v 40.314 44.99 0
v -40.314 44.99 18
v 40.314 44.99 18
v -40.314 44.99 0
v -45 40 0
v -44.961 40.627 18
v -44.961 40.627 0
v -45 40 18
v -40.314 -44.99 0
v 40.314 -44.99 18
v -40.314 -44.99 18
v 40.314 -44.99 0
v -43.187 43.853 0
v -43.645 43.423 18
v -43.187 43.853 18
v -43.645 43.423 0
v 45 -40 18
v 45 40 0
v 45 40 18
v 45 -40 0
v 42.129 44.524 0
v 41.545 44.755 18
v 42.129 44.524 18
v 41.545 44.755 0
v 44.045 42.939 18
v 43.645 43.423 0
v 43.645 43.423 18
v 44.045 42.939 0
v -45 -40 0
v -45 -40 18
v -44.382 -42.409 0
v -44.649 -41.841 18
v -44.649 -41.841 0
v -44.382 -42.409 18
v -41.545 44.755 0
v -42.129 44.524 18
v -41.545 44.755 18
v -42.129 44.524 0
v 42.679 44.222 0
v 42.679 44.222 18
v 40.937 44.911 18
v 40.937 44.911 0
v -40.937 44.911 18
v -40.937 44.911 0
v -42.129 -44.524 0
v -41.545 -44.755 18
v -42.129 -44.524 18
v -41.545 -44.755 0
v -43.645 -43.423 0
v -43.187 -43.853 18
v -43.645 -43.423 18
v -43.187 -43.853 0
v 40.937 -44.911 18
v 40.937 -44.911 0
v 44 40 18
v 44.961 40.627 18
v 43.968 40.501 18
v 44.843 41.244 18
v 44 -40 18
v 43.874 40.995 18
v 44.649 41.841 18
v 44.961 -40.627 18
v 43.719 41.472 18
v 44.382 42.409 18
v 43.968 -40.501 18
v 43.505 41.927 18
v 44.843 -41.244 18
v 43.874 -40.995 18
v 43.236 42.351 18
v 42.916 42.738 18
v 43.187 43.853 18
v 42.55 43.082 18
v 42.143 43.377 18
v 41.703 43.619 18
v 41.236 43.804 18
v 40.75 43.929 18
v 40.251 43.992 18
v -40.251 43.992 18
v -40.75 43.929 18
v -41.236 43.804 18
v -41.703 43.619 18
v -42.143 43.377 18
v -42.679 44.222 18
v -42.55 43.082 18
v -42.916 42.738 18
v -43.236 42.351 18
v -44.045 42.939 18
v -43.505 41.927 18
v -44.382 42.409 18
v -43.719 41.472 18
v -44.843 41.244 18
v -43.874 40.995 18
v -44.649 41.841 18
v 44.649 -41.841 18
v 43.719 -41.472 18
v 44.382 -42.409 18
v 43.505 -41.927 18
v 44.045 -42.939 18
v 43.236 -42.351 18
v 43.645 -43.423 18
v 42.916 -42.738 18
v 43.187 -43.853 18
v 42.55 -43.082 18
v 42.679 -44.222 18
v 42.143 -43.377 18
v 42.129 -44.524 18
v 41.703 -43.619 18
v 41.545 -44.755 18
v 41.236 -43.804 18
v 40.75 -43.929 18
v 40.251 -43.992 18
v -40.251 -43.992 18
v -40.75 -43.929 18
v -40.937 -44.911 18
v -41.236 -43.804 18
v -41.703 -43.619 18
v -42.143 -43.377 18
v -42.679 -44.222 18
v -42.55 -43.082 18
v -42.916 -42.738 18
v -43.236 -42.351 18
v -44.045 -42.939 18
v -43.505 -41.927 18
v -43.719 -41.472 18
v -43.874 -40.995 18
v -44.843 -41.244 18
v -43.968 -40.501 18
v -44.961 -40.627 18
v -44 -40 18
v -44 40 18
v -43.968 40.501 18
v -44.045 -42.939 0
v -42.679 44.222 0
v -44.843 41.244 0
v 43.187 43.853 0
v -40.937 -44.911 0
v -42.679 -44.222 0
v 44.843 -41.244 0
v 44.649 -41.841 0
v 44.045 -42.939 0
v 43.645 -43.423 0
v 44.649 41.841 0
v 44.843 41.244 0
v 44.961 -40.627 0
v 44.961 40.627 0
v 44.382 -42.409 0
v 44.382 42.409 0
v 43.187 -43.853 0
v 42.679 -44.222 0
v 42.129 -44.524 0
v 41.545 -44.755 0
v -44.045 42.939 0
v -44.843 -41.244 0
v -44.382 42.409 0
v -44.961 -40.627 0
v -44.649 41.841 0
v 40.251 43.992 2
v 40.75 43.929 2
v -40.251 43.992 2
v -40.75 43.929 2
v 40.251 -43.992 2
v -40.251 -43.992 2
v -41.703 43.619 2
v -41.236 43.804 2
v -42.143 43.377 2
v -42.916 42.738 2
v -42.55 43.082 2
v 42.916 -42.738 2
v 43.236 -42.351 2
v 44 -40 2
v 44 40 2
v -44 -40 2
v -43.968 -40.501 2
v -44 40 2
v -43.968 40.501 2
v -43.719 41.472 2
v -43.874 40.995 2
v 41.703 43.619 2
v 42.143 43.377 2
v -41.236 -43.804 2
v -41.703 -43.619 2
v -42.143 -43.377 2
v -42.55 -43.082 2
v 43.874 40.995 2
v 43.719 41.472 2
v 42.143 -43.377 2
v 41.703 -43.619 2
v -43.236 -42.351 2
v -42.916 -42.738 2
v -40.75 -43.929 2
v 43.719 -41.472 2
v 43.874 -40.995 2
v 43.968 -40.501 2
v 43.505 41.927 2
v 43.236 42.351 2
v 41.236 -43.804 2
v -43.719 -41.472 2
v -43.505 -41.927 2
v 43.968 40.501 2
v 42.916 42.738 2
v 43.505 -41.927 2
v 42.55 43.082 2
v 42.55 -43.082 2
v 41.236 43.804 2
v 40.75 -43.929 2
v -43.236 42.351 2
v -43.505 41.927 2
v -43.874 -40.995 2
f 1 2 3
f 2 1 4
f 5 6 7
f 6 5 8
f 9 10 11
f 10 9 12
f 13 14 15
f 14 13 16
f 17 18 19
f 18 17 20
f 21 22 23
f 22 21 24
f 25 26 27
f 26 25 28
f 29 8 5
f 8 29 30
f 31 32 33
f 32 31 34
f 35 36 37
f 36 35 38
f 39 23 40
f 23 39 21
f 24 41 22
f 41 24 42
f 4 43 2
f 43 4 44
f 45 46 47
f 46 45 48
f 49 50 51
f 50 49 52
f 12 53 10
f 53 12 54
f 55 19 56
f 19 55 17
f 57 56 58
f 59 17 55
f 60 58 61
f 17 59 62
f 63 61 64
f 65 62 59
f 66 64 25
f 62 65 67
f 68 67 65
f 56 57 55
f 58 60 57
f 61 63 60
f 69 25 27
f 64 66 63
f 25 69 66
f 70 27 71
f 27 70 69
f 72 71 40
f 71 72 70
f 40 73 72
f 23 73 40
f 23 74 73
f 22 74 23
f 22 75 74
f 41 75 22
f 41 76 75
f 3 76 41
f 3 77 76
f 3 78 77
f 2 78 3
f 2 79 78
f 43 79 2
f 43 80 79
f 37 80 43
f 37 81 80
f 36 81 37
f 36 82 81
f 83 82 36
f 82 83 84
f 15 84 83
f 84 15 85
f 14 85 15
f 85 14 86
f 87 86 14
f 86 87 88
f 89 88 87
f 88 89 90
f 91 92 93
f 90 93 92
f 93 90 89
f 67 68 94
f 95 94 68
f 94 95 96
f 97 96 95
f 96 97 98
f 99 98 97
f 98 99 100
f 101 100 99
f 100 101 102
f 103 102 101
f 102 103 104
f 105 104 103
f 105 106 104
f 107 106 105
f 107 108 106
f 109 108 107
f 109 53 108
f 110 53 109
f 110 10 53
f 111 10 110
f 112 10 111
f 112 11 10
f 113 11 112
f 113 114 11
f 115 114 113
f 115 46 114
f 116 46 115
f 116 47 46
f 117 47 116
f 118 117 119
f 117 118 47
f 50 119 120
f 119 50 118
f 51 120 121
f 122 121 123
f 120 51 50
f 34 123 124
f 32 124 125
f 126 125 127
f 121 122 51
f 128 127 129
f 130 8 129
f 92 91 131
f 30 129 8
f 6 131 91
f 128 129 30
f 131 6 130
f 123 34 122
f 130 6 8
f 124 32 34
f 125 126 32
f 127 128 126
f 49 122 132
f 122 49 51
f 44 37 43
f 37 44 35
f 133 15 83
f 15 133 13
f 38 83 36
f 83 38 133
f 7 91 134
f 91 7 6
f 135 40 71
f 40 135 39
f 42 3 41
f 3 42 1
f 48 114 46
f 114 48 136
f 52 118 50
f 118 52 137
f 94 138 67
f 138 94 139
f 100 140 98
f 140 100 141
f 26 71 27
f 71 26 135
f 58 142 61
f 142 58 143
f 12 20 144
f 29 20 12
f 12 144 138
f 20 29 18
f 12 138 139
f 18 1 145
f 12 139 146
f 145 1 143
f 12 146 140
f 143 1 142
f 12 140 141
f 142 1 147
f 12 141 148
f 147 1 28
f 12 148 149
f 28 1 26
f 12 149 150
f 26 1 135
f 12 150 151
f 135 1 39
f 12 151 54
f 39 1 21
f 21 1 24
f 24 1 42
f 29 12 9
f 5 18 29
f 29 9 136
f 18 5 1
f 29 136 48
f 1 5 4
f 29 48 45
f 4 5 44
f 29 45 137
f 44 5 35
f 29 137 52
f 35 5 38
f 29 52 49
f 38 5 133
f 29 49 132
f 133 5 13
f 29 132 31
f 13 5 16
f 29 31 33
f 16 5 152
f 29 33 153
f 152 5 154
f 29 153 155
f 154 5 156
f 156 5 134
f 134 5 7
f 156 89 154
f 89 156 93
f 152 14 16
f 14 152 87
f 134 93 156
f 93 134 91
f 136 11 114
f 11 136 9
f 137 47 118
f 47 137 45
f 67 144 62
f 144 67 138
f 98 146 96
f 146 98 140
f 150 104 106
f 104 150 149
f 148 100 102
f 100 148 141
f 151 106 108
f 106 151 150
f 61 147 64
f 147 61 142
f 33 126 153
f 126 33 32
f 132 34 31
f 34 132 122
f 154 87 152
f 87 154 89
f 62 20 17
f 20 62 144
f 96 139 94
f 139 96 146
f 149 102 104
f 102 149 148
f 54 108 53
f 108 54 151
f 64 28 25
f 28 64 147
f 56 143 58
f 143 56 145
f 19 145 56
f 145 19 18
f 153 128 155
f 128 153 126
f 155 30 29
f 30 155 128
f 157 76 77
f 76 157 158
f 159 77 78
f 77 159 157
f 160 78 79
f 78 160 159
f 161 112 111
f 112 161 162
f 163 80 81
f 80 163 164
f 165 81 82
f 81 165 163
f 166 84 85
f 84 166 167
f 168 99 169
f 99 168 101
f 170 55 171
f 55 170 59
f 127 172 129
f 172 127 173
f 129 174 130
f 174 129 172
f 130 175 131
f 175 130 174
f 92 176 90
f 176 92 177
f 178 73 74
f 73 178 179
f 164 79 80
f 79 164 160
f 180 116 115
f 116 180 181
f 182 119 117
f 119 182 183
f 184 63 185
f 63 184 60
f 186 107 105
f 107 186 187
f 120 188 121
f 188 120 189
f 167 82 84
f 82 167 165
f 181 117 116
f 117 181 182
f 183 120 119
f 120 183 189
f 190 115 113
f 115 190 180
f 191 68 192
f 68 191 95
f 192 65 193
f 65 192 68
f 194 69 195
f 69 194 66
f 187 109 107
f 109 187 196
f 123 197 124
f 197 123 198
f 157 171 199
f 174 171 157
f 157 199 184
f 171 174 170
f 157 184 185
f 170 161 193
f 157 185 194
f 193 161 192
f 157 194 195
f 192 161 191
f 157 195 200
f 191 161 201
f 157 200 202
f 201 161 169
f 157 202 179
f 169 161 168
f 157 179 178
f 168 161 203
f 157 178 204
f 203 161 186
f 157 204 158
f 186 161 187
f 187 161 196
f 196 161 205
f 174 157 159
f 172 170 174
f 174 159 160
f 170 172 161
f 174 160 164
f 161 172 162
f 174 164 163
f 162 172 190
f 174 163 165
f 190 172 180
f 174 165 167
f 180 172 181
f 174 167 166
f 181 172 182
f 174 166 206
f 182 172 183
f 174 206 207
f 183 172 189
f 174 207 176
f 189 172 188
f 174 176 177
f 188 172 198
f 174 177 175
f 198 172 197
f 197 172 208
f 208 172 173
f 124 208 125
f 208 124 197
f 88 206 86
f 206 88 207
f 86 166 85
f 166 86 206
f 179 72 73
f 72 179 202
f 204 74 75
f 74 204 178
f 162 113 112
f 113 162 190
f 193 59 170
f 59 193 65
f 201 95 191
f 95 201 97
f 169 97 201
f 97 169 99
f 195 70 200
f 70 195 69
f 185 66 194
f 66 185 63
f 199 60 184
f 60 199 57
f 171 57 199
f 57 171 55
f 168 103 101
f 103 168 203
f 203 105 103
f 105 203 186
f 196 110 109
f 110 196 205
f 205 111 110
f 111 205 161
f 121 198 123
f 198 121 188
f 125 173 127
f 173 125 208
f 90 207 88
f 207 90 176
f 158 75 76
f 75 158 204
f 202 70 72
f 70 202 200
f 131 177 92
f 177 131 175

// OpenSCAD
$fn = 50;


difference() {
	union() {
		hull() {
			translate(v = [-40.0000000000, 40.0000000000, 0]) {
				cylinder(h = 18, r = 5);
			}
			translate(v = [40.0000000000, 40.0000000000, 0]) {
				cylinder(h = 18, r = 5);
			}
			translate(v = [-40.0000000000, -40.0000000000, 0]) {
				cylinder(h = 18, r = 5);
			}
			translate(v = [40.0000000000, -40.0000000000, 0]) {
				cylinder(h = 18, r = 5);
			}
		}
	}
	union() {
		translate(v = [0, 0, 2]) {
			hull() {
				translate(v = [-40.0000000000, 40.0000000000, 0]) {
					cylinder(h = 16, r = 4);
				}
				translate(v = [40.0000000000, 40.0000000000, 0]) {
					cylinder(h = 16, r = 4);
				}
				translate(v = [-40.0000000000, -40.0000000000, 0]) {
					cylinder(h = 16, r = 4);
				}
				translate(v = [40.0000000000, -40.0000000000, 0]) {
					cylinder(h = 16, r = 4);
				}
			}
		}
	}
}
